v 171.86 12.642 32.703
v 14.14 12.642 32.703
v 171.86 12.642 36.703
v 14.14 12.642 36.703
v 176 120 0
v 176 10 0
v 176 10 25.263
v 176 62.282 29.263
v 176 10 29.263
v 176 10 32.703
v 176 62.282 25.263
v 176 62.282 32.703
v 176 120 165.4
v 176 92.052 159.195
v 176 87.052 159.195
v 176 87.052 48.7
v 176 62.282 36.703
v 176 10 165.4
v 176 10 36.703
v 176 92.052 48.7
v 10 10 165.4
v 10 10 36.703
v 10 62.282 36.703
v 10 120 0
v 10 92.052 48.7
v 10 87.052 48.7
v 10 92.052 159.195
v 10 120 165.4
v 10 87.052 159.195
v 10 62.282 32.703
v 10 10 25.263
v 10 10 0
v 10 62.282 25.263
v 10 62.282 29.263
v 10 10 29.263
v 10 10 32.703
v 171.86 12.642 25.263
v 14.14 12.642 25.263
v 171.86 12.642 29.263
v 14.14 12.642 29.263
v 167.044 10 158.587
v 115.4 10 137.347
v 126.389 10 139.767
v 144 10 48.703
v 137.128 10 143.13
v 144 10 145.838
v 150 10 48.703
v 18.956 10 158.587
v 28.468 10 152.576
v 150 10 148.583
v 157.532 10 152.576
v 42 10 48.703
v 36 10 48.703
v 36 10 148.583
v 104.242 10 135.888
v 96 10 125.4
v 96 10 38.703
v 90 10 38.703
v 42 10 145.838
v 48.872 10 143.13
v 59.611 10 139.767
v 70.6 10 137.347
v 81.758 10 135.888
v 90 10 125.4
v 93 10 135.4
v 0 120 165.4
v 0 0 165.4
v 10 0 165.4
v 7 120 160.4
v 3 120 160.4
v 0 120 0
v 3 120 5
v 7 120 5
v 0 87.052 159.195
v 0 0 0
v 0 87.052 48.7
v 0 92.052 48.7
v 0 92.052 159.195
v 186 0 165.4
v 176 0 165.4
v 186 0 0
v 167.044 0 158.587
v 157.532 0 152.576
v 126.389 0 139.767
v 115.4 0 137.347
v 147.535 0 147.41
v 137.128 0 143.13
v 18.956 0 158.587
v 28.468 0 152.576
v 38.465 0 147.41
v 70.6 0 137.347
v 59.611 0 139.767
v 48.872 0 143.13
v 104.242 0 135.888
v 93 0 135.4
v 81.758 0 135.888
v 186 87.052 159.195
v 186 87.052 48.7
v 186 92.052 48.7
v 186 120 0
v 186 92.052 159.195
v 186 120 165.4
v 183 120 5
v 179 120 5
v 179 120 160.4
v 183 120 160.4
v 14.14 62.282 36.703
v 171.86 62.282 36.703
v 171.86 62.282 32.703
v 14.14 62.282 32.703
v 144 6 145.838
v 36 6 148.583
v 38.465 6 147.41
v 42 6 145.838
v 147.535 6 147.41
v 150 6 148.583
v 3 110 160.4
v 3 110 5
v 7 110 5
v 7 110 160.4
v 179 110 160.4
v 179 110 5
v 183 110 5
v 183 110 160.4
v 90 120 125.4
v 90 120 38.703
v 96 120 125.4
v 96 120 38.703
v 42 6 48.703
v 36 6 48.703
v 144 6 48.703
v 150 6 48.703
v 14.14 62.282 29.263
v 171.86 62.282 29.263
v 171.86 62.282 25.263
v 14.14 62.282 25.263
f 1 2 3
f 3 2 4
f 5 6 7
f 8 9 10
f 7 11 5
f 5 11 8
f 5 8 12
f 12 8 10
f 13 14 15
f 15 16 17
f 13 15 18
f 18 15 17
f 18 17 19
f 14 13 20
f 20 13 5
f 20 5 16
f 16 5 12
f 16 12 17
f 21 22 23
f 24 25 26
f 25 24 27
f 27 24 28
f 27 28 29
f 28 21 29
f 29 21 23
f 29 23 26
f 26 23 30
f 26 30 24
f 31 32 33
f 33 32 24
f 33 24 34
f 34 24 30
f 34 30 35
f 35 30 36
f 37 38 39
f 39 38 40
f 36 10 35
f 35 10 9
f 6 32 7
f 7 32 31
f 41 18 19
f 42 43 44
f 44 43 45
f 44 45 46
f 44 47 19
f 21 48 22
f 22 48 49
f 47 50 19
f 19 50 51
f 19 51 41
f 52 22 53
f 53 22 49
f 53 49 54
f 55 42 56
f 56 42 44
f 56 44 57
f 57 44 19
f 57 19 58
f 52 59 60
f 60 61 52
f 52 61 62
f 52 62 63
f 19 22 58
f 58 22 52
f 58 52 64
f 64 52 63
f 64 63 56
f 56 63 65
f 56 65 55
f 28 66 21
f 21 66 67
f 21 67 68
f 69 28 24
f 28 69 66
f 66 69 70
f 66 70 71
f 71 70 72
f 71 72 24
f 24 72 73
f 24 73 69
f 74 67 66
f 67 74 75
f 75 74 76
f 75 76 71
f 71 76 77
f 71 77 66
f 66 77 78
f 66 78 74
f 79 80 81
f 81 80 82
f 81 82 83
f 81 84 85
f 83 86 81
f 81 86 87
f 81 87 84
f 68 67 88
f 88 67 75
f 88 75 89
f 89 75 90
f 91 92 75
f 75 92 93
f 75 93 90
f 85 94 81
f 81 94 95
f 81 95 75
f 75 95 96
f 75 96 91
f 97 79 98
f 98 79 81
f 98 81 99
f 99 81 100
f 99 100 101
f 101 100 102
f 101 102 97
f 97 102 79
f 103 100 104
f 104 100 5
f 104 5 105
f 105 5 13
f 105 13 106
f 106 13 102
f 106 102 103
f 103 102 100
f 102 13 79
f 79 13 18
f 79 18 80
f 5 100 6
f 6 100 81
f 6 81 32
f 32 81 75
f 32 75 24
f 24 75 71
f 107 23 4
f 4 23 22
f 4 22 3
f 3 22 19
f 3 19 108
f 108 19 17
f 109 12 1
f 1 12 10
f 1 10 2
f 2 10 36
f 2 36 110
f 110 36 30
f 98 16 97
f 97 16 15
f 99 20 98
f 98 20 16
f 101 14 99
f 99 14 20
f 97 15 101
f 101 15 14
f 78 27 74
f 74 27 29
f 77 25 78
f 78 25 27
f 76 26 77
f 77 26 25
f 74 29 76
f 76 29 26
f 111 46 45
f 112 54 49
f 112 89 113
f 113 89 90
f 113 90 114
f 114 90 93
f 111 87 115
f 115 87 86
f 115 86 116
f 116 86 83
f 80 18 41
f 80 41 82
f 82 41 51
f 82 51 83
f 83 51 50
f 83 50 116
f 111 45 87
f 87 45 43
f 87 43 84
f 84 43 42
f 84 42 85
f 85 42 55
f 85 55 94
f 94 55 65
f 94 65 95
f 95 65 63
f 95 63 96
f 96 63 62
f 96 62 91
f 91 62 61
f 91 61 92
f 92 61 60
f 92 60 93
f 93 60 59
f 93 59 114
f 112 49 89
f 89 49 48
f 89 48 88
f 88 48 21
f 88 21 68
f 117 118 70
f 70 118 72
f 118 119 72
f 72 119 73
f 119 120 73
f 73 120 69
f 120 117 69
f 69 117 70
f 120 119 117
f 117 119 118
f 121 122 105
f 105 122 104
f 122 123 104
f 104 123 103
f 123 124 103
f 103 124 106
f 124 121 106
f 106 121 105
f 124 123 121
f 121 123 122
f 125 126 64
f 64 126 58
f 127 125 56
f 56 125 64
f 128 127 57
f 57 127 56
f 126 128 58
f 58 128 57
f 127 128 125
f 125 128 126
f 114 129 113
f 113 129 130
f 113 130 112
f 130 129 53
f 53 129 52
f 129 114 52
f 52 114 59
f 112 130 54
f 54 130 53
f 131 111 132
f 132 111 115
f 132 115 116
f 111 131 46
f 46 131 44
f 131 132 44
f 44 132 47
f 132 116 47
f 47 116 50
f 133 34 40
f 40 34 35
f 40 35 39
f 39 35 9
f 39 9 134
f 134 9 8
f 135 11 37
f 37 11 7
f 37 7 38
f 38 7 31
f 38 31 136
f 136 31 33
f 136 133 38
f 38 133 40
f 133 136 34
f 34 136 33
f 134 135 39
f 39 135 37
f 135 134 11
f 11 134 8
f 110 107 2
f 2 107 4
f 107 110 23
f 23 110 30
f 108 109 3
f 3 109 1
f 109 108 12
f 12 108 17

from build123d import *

# Parameters (mm, degrees)
EXTRUDE_THIN2_DEPTH     = 165.4
SKETCH11_W              = 166
SKETCH11_H              = 4
BOSS_EXTRUDE3_DEPTH     = 2.6416
CUT_EXTRUDE6_DEPTH      = 270.69086006
CUT_EXTRUDE6_DEPTH_BACK = 270.69086006
SKETCH13_W              = 110.495011338
SKETCH13_H              = 5
CUT_EXTRUDE7_DEPTH      = 273.127102656
SKETCH19_W              = 4
SKETCH19_H              = 155.4
CUT_EXTRUDE9_DEPTH      = 10
SKETCH20_W              = 4
SKETCH20_H              = 155.4
CUT_EXTRUDE10_DEPTH     = 10
SKETCH21_W              = 6
SKETCH21_H              = 86.697
BOSS_EXTRUDE4_DEPTH     = 110
CUT_EXTRUDE11_DEPTH     = 4
SKETCH23_W              = 166
SKETCH23_H              = 4
BOSS_EXTRUDE5_DEPTH     = 2.6416
SKETCH24_W              = 4.14
SKETCH24_H              = 4
BOSS_EXTRUDE6_DEPTH     = 49.64
SKETCH25_W              = 4.14
SKETCH25_H              = 4
BOSS_EXTRUDE7_DEPTH     = 49.64
SKETCH26_W              = 4.14
SKETCH26_H              = 4
BOSS_EXTRUDE8_DEPTH     = 49.64
SKETCH27_W              = 4.14
SKETCH27_H              = 4
BOSS_EXTRUDE9_DEPTH     = 49.64


with BuildPart() as part:
    # Sketch2 → Extrude-Thin2 (new body)
    with BuildSketch(Plane.XY):
        Polygon((0, 120), (0, 0), (186, 0), (186, 120), (176, 120), (176, 10), (10, 10), (10, 120), align=None)
    extrude(amount=EXTRUDE_THIN2_DEPTH)

    # Sketch11 → Boss-Extrude3 (add)
    with BuildSketch(Plane(origin=(0, 10, 0), x_dir=(1, 0, 0), z_dir=(0, 1, 0))):
        with Locations((93, -34.703)):
            Rectangle(SKETCH11_W, SKETCH11_H)
    extrude(amount=BOSS_EXTRUDE3_DEPTH)

    # Sketch13 → Cut-Extrude6 (cut, two sides: drawn at the far end of the back side and taken through both)
    with BuildSketch(Plane(origin=(10, 0, 0), x_dir=(0, 0, -1), z_dir=(1, 0, 0)).offset(-CUT_EXTRUDE6_DEPTH_BACK)):
        with Locations((-103.947505669, 89.551599899)):
            Rectangle(SKETCH13_W, SKETCH13_H)
    extrude(amount=CUT_EXTRUDE6_DEPTH + CUT_EXTRUDE6_DEPTH_BACK, mode=Mode.SUBTRACT)

    # Sketch14 → Cut-Extrude7 (cut, through all)
    with BuildSketch(Plane(origin=(0, 10, 0), x_dir=(1, 0, 0), z_dir=(0, 1, 0))):
        with BuildLine():
            Line((176, -165.4), (10, -165.4))
            ThreePointArc((10, -165.4), (93, -135.4), (176, -165.4))
        make_face()
    extrude(amount=-CUT_EXTRUDE7_DEPTH, mode=Mode.SUBTRACT)

    # Sketch19 → Cut-Extrude9 (cut)
    with BuildSketch(Plane(origin=(0, 120, 0), x_dir=(1, 0, 0), z_dir=(0, 1, 0))):
        with Locations((5, -82.7)):
            Rectangle(SKETCH19_W, SKETCH19_H)
    extrude(amount=-CUT_EXTRUDE9_DEPTH, mode=Mode.SUBTRACT)

    # Sketch20 → Cut-Extrude10 (cut)
    with BuildSketch(Plane(origin=(0, 120, 0), x_dir=(1, 0, 0), z_dir=(0, 1, 0))):
        with Locations((181, -82.7)):
            Rectangle(SKETCH20_W, SKETCH20_H)
    extrude(amount=-CUT_EXTRUDE10_DEPTH, mode=Mode.SUBTRACT)

    # Sketch21 → Boss-Extrude4 (add, through all)
    with BuildSketch(Plane(origin=(0, 10, 0), x_dir=(1, 0, 0), z_dir=(0, 1, 0))):
        with Locations((93, -82.0515)):
            Rectangle(SKETCH21_W, SKETCH21_H)
    extrude(amount=BOSS_EXTRUDE4_DEPTH)

    # Sketch22 → Cut-Extrude11 (cut)
    with BuildSketch(Plane(origin=(0, 10, 0), x_dir=(1, 0, 0), z_dir=(0, 1, 0))):
        Polygon((36, -48.703), (36, -148.583194008), (42, -145.837577441), (42, -48.703), align=None)
        Polygon((144, -145.837577441), (150, -148.583194008), (150, -48.703), (144, -48.703), align=None)
    extrude(amount=-CUT_EXTRUDE11_DEPTH, mode=Mode.SUBTRACT)

    # Sketch23 → Boss-Extrude5 (add)
    with BuildSketch(Plane(origin=(0, 10, 0), x_dir=(1, 0, 0), z_dir=(0, 1, 0))):
        with Locations((93, -27.263)):
            Rectangle(SKETCH23_W, SKETCH23_H)
    extrude(amount=BOSS_EXTRUDE5_DEPTH)

    # Sketch24 → Boss-Extrude6 (add)
    with BuildSketch(Plane(origin=(0, 12.6416, 0), x_dir=(1, 0, 0), z_dir=(0, 1, 0))):
        with Locations((12.07, -27.263)):
            Rectangle(SKETCH24_W, SKETCH24_H)
    extrude(amount=BOSS_EXTRUDE6_DEPTH)

    # Sketch25 → Boss-Extrude7 (add)
    with BuildSketch(Plane(origin=(0, 12.6416, 0), x_dir=(1, 0, 0), z_dir=(0, 1, 0))):
        with Locations((173.93, -27.263)):
            Rectangle(SKETCH25_W, SKETCH25_H)
    extrude(amount=BOSS_EXTRUDE7_DEPTH)

    # Sketch26 → Boss-Extrude8 (add)
    with BuildSketch(Plane(origin=(0, 12.6416, 0), x_dir=(1, 0, 0), z_dir=(0, 1, 0))):
        with Locations((12.07, -34.703)):
            Rectangle(SKETCH26_W, SKETCH26_H)
    extrude(amount=BOSS_EXTRUDE8_DEPTH)

    # Sketch27 → Boss-Extrude9 (add)
    with BuildSketch(Plane(origin=(0, 12.6416, 0), x_dir=(1, 0, 0), z_dir=(0, 1, 0))):
        with Locations((173.93, -34.703)):
            Rectangle(SKETCH27_W, SKETCH27_H)
    extrude(amount=BOSS_EXTRUDE9_DEPTH)


solid = part.part
